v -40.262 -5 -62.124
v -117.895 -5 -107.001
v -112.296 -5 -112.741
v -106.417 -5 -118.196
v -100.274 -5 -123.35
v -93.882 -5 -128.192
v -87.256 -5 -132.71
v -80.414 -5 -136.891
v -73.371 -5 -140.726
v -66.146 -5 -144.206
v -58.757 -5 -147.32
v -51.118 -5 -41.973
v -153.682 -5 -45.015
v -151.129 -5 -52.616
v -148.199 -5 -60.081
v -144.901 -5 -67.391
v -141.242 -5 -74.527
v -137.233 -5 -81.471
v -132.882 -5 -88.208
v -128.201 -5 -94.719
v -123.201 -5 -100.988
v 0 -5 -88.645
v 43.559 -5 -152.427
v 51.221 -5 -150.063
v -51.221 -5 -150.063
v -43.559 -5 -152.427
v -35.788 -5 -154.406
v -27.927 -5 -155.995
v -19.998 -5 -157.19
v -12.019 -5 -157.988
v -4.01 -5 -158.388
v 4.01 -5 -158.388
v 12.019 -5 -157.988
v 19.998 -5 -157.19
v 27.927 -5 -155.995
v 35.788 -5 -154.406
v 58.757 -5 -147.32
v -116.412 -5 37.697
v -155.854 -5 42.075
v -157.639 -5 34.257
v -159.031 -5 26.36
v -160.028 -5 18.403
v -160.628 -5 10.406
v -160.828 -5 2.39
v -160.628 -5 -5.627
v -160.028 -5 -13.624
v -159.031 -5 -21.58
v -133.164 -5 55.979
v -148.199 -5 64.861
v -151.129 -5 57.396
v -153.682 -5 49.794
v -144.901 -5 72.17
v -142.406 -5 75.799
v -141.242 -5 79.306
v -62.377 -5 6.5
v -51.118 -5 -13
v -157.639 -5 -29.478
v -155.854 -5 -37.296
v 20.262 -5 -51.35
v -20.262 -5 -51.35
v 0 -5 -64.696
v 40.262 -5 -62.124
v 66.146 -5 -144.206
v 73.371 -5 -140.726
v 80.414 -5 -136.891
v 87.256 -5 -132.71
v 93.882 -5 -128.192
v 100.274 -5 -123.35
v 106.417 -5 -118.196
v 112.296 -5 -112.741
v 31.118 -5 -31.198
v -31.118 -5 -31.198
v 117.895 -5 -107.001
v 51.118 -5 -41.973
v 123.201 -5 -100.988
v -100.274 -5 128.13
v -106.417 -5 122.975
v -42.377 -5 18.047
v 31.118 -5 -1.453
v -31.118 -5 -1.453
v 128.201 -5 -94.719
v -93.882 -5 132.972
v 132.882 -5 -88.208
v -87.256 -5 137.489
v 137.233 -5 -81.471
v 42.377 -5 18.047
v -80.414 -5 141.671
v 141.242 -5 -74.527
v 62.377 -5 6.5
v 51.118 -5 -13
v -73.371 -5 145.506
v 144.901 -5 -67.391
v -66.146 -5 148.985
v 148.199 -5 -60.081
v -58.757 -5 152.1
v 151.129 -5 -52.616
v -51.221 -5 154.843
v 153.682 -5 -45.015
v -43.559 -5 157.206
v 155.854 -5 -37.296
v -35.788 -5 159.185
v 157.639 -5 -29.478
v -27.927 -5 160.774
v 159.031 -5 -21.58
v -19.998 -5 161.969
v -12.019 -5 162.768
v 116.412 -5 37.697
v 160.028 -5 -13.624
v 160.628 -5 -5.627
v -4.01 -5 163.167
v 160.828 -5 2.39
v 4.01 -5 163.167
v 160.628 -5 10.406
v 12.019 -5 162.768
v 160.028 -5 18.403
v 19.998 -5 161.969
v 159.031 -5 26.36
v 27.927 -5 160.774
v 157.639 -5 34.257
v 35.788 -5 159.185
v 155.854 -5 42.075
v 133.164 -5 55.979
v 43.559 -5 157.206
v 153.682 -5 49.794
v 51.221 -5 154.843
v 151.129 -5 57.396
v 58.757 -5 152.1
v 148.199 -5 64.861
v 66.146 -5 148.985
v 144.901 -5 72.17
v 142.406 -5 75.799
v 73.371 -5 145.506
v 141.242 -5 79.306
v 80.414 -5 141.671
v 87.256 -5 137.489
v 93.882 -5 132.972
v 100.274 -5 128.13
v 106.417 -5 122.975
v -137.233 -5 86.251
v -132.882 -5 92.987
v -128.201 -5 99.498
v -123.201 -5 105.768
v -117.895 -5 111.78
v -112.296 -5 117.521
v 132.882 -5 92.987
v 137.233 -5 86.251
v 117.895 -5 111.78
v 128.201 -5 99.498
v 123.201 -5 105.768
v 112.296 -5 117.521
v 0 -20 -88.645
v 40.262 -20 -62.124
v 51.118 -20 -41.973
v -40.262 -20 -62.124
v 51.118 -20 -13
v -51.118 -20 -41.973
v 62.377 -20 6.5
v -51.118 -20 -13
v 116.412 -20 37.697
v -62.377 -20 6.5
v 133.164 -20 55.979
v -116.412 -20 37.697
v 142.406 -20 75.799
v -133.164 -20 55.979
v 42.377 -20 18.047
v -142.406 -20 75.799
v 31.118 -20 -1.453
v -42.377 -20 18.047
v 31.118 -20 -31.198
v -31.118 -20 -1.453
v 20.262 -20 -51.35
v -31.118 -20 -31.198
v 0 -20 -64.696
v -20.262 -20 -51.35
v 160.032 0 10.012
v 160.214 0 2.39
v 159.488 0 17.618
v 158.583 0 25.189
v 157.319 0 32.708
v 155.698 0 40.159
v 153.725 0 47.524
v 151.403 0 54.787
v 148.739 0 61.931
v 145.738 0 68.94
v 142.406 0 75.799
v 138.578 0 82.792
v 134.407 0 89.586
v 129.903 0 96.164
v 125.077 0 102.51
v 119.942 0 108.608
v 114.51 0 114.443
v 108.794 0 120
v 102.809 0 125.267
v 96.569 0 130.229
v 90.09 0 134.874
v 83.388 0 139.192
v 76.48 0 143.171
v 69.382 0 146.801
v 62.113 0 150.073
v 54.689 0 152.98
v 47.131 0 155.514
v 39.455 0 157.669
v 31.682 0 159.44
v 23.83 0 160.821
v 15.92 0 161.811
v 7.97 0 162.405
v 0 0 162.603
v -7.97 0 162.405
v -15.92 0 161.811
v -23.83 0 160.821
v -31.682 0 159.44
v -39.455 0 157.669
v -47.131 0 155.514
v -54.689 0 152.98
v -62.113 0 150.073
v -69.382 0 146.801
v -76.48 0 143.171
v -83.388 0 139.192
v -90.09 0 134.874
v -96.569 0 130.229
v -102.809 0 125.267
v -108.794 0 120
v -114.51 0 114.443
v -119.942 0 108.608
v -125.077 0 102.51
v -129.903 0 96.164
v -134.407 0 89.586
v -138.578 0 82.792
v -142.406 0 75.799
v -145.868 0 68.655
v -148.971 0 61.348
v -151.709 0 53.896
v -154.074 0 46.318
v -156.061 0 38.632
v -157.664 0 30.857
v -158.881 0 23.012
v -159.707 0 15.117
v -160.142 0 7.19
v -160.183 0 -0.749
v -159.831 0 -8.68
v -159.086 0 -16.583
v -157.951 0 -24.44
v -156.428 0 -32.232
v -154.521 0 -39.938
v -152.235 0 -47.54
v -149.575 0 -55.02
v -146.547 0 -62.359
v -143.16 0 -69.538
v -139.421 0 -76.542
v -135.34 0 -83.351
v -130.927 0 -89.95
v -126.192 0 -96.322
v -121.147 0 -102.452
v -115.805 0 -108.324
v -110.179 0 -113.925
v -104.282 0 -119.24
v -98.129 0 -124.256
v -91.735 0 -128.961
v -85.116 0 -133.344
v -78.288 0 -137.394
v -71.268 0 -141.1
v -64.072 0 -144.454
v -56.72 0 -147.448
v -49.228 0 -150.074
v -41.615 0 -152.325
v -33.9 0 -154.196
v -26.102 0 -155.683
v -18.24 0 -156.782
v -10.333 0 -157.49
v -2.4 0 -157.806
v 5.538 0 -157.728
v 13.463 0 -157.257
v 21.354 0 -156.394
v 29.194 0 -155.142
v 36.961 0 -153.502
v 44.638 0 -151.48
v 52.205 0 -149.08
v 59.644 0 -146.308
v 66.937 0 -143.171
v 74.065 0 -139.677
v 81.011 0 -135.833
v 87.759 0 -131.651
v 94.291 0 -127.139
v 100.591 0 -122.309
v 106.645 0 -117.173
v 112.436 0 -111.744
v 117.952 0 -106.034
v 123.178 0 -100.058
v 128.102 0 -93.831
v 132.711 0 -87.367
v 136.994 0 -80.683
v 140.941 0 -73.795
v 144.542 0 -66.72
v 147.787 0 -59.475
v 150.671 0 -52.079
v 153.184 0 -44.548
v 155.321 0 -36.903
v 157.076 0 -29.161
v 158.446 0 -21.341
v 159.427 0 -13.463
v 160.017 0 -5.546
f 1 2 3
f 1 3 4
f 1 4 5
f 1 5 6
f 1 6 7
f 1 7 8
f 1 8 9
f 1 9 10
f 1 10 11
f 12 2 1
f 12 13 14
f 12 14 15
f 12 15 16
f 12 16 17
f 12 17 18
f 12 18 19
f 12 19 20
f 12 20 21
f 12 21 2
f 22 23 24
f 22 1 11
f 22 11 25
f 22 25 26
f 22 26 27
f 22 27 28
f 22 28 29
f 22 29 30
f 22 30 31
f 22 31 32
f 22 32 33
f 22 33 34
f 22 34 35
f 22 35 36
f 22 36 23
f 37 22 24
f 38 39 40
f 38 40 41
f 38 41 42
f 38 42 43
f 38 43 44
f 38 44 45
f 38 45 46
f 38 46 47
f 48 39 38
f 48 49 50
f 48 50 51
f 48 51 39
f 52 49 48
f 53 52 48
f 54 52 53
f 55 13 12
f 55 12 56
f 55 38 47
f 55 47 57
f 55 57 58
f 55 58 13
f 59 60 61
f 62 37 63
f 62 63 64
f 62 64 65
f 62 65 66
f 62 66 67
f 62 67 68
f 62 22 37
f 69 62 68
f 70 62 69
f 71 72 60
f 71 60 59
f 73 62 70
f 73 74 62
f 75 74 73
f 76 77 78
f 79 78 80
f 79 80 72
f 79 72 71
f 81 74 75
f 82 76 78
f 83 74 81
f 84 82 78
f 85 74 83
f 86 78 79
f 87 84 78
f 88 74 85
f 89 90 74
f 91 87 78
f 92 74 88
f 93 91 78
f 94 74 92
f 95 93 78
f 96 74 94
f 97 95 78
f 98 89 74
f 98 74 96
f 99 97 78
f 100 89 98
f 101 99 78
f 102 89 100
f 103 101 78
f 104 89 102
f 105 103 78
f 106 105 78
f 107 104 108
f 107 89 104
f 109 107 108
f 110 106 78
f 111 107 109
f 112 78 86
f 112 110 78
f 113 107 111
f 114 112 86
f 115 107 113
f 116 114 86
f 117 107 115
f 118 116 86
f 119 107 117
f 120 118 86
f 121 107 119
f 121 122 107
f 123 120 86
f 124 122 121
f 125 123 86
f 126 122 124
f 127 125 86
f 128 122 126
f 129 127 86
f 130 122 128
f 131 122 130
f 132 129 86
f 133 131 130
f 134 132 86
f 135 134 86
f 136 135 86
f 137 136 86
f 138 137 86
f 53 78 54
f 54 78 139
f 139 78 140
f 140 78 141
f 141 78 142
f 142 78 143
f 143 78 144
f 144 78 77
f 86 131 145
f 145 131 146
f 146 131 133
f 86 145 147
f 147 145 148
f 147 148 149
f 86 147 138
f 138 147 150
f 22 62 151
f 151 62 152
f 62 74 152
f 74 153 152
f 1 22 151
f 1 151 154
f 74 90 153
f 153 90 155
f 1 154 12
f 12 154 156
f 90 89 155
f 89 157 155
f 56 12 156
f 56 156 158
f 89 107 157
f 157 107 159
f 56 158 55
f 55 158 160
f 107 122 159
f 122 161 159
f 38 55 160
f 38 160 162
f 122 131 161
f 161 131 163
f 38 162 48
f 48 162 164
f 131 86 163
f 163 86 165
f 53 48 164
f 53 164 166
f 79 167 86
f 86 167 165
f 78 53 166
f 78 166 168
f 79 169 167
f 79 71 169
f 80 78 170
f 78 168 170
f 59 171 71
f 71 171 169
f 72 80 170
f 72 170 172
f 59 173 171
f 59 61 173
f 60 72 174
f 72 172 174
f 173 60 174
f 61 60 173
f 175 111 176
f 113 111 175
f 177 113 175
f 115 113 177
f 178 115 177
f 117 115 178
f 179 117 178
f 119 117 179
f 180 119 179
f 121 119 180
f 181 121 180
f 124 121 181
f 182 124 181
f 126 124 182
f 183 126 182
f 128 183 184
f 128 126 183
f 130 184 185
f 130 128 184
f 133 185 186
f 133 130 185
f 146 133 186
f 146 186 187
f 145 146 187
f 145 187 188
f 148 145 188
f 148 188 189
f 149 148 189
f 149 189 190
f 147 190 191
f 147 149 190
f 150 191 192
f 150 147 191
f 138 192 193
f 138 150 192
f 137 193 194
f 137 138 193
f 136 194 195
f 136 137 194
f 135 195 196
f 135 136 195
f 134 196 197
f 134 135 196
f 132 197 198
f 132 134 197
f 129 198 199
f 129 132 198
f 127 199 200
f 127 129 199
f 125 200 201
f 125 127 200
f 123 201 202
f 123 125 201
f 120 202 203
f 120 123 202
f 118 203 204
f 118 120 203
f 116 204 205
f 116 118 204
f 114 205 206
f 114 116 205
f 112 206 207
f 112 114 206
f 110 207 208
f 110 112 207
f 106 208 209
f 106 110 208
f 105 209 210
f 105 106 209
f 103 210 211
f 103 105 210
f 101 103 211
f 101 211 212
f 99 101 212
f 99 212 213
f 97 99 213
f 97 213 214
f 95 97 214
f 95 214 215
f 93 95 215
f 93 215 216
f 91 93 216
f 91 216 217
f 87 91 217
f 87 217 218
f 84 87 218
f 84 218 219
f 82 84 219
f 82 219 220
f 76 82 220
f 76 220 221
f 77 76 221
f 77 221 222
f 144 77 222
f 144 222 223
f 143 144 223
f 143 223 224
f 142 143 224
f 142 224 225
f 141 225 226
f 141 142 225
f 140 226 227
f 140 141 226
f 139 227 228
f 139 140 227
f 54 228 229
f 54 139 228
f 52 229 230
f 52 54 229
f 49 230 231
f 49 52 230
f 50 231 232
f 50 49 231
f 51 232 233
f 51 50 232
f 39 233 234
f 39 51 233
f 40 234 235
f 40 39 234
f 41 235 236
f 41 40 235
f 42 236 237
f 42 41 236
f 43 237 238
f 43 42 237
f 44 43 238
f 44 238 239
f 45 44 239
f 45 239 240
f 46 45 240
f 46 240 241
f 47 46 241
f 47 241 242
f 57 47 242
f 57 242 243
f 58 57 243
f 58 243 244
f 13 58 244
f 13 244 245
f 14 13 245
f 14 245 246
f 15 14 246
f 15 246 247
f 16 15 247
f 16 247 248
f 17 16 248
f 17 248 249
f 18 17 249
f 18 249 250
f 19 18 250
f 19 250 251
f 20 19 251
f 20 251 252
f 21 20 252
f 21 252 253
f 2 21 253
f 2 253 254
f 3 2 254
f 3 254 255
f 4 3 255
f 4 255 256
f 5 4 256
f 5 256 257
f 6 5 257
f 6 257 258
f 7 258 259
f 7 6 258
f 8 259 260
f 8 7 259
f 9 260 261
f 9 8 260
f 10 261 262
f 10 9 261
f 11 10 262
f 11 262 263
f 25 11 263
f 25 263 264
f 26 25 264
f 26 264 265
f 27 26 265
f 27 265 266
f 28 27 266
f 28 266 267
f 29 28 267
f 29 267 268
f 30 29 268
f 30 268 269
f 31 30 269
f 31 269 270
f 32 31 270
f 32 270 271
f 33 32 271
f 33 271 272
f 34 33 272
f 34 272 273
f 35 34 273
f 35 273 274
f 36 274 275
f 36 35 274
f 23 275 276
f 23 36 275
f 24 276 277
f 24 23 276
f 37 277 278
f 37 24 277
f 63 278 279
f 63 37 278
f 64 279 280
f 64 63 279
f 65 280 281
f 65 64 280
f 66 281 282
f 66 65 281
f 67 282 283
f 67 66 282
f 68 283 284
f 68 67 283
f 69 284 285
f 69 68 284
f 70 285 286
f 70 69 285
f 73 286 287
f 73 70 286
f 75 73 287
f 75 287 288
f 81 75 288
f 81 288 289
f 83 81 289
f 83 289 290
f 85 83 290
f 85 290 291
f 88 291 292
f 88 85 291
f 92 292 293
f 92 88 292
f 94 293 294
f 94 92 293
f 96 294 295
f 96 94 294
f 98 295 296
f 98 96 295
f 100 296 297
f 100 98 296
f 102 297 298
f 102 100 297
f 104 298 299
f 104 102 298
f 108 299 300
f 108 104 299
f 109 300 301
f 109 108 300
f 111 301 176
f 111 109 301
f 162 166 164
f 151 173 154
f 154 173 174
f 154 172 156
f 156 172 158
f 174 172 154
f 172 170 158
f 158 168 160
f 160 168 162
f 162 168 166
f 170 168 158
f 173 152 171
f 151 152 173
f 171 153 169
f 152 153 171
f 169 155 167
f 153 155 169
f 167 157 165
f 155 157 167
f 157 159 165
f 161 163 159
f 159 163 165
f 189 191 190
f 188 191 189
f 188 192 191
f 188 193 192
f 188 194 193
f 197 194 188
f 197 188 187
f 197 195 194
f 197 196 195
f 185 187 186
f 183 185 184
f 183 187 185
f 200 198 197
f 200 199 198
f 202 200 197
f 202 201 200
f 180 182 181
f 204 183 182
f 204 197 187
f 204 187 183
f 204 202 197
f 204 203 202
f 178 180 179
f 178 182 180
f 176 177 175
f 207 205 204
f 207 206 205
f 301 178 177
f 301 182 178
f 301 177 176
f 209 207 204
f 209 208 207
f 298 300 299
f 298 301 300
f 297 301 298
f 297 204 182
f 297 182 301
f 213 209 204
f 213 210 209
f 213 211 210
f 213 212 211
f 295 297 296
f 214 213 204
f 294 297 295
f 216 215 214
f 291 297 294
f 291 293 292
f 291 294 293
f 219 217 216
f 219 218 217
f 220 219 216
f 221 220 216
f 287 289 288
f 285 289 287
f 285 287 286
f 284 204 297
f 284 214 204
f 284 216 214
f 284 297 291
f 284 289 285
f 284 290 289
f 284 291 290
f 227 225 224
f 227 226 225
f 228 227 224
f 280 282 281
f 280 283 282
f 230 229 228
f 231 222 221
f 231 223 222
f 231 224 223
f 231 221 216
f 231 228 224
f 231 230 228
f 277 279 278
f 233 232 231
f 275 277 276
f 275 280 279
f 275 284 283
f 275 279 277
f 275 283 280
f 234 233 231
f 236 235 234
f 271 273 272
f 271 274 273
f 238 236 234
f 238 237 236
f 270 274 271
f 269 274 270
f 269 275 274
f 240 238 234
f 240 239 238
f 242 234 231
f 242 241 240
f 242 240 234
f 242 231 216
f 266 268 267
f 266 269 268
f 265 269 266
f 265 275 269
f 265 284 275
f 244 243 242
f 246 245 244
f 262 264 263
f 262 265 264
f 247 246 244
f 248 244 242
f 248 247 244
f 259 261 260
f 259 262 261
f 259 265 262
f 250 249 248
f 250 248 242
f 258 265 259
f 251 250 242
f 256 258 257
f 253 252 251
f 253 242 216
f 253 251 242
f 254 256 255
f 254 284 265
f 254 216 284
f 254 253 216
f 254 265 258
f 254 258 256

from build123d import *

# Parameters (mm, degrees)
PAD_DEPTH    = 20
SKETCH001_R  = 160.213684
PAD001_DEPTH = 5
PAD001_TAPER = -7
CHAMFER_SIZE = 13


with BuildPart() as part:
    # Sketch → Pad (new body)
    with BuildSketch(Plane.XZ):
        Polygon((0, -88.645294), (51.118267, -54.973317), (51.118267, 0), (127.669846, 44.197075), (142.406095, 75.799063), (31.118267, 11.547005), (31.118267, -44.19839), (0, -64.69622), (-31.118267, -44.19839), (-31.118267, 11.547005), (-142.406095, 75.799063), (-127.669846, 44.197075), (-51.118267, 0), (-51.118267, -54.973317), align=None)
    extrude(amount=PAD_DEPTH)

    # Sketch001 → Pad001 (join)
    with BuildSketch(Plane.XZ):
        with Locations((0, 2.38974)):
            Circle(SKETCH001_R)
    extrude(amount=PAD001_DEPTH, taper=PAD001_TAPER)

    # Chamfer
    chamfer_edges = [part.edges().sort_by_distance(p)[0] for p in [
        (31.118267, -12.5, 11.547005),
        (31.118267, -12.5, -44.19839),
        (-51.118267, -12.5, -54.973317),
        (-51.118267, -12.5, 0),
        (-127.669846, -12.5, 44.197075),
        (-31.118267, -12.5, 11.547005),
        (-31.118267, -12.5, -44.19839),
        (51.118267, -12.5, -54.973317),
        (51.118267, -12.5, 0),
        (127.669846, -12.5, 44.197075),
    ]]
    chamfer(chamfer_edges, length=CHAMFER_SIZE)


solid = part.part
